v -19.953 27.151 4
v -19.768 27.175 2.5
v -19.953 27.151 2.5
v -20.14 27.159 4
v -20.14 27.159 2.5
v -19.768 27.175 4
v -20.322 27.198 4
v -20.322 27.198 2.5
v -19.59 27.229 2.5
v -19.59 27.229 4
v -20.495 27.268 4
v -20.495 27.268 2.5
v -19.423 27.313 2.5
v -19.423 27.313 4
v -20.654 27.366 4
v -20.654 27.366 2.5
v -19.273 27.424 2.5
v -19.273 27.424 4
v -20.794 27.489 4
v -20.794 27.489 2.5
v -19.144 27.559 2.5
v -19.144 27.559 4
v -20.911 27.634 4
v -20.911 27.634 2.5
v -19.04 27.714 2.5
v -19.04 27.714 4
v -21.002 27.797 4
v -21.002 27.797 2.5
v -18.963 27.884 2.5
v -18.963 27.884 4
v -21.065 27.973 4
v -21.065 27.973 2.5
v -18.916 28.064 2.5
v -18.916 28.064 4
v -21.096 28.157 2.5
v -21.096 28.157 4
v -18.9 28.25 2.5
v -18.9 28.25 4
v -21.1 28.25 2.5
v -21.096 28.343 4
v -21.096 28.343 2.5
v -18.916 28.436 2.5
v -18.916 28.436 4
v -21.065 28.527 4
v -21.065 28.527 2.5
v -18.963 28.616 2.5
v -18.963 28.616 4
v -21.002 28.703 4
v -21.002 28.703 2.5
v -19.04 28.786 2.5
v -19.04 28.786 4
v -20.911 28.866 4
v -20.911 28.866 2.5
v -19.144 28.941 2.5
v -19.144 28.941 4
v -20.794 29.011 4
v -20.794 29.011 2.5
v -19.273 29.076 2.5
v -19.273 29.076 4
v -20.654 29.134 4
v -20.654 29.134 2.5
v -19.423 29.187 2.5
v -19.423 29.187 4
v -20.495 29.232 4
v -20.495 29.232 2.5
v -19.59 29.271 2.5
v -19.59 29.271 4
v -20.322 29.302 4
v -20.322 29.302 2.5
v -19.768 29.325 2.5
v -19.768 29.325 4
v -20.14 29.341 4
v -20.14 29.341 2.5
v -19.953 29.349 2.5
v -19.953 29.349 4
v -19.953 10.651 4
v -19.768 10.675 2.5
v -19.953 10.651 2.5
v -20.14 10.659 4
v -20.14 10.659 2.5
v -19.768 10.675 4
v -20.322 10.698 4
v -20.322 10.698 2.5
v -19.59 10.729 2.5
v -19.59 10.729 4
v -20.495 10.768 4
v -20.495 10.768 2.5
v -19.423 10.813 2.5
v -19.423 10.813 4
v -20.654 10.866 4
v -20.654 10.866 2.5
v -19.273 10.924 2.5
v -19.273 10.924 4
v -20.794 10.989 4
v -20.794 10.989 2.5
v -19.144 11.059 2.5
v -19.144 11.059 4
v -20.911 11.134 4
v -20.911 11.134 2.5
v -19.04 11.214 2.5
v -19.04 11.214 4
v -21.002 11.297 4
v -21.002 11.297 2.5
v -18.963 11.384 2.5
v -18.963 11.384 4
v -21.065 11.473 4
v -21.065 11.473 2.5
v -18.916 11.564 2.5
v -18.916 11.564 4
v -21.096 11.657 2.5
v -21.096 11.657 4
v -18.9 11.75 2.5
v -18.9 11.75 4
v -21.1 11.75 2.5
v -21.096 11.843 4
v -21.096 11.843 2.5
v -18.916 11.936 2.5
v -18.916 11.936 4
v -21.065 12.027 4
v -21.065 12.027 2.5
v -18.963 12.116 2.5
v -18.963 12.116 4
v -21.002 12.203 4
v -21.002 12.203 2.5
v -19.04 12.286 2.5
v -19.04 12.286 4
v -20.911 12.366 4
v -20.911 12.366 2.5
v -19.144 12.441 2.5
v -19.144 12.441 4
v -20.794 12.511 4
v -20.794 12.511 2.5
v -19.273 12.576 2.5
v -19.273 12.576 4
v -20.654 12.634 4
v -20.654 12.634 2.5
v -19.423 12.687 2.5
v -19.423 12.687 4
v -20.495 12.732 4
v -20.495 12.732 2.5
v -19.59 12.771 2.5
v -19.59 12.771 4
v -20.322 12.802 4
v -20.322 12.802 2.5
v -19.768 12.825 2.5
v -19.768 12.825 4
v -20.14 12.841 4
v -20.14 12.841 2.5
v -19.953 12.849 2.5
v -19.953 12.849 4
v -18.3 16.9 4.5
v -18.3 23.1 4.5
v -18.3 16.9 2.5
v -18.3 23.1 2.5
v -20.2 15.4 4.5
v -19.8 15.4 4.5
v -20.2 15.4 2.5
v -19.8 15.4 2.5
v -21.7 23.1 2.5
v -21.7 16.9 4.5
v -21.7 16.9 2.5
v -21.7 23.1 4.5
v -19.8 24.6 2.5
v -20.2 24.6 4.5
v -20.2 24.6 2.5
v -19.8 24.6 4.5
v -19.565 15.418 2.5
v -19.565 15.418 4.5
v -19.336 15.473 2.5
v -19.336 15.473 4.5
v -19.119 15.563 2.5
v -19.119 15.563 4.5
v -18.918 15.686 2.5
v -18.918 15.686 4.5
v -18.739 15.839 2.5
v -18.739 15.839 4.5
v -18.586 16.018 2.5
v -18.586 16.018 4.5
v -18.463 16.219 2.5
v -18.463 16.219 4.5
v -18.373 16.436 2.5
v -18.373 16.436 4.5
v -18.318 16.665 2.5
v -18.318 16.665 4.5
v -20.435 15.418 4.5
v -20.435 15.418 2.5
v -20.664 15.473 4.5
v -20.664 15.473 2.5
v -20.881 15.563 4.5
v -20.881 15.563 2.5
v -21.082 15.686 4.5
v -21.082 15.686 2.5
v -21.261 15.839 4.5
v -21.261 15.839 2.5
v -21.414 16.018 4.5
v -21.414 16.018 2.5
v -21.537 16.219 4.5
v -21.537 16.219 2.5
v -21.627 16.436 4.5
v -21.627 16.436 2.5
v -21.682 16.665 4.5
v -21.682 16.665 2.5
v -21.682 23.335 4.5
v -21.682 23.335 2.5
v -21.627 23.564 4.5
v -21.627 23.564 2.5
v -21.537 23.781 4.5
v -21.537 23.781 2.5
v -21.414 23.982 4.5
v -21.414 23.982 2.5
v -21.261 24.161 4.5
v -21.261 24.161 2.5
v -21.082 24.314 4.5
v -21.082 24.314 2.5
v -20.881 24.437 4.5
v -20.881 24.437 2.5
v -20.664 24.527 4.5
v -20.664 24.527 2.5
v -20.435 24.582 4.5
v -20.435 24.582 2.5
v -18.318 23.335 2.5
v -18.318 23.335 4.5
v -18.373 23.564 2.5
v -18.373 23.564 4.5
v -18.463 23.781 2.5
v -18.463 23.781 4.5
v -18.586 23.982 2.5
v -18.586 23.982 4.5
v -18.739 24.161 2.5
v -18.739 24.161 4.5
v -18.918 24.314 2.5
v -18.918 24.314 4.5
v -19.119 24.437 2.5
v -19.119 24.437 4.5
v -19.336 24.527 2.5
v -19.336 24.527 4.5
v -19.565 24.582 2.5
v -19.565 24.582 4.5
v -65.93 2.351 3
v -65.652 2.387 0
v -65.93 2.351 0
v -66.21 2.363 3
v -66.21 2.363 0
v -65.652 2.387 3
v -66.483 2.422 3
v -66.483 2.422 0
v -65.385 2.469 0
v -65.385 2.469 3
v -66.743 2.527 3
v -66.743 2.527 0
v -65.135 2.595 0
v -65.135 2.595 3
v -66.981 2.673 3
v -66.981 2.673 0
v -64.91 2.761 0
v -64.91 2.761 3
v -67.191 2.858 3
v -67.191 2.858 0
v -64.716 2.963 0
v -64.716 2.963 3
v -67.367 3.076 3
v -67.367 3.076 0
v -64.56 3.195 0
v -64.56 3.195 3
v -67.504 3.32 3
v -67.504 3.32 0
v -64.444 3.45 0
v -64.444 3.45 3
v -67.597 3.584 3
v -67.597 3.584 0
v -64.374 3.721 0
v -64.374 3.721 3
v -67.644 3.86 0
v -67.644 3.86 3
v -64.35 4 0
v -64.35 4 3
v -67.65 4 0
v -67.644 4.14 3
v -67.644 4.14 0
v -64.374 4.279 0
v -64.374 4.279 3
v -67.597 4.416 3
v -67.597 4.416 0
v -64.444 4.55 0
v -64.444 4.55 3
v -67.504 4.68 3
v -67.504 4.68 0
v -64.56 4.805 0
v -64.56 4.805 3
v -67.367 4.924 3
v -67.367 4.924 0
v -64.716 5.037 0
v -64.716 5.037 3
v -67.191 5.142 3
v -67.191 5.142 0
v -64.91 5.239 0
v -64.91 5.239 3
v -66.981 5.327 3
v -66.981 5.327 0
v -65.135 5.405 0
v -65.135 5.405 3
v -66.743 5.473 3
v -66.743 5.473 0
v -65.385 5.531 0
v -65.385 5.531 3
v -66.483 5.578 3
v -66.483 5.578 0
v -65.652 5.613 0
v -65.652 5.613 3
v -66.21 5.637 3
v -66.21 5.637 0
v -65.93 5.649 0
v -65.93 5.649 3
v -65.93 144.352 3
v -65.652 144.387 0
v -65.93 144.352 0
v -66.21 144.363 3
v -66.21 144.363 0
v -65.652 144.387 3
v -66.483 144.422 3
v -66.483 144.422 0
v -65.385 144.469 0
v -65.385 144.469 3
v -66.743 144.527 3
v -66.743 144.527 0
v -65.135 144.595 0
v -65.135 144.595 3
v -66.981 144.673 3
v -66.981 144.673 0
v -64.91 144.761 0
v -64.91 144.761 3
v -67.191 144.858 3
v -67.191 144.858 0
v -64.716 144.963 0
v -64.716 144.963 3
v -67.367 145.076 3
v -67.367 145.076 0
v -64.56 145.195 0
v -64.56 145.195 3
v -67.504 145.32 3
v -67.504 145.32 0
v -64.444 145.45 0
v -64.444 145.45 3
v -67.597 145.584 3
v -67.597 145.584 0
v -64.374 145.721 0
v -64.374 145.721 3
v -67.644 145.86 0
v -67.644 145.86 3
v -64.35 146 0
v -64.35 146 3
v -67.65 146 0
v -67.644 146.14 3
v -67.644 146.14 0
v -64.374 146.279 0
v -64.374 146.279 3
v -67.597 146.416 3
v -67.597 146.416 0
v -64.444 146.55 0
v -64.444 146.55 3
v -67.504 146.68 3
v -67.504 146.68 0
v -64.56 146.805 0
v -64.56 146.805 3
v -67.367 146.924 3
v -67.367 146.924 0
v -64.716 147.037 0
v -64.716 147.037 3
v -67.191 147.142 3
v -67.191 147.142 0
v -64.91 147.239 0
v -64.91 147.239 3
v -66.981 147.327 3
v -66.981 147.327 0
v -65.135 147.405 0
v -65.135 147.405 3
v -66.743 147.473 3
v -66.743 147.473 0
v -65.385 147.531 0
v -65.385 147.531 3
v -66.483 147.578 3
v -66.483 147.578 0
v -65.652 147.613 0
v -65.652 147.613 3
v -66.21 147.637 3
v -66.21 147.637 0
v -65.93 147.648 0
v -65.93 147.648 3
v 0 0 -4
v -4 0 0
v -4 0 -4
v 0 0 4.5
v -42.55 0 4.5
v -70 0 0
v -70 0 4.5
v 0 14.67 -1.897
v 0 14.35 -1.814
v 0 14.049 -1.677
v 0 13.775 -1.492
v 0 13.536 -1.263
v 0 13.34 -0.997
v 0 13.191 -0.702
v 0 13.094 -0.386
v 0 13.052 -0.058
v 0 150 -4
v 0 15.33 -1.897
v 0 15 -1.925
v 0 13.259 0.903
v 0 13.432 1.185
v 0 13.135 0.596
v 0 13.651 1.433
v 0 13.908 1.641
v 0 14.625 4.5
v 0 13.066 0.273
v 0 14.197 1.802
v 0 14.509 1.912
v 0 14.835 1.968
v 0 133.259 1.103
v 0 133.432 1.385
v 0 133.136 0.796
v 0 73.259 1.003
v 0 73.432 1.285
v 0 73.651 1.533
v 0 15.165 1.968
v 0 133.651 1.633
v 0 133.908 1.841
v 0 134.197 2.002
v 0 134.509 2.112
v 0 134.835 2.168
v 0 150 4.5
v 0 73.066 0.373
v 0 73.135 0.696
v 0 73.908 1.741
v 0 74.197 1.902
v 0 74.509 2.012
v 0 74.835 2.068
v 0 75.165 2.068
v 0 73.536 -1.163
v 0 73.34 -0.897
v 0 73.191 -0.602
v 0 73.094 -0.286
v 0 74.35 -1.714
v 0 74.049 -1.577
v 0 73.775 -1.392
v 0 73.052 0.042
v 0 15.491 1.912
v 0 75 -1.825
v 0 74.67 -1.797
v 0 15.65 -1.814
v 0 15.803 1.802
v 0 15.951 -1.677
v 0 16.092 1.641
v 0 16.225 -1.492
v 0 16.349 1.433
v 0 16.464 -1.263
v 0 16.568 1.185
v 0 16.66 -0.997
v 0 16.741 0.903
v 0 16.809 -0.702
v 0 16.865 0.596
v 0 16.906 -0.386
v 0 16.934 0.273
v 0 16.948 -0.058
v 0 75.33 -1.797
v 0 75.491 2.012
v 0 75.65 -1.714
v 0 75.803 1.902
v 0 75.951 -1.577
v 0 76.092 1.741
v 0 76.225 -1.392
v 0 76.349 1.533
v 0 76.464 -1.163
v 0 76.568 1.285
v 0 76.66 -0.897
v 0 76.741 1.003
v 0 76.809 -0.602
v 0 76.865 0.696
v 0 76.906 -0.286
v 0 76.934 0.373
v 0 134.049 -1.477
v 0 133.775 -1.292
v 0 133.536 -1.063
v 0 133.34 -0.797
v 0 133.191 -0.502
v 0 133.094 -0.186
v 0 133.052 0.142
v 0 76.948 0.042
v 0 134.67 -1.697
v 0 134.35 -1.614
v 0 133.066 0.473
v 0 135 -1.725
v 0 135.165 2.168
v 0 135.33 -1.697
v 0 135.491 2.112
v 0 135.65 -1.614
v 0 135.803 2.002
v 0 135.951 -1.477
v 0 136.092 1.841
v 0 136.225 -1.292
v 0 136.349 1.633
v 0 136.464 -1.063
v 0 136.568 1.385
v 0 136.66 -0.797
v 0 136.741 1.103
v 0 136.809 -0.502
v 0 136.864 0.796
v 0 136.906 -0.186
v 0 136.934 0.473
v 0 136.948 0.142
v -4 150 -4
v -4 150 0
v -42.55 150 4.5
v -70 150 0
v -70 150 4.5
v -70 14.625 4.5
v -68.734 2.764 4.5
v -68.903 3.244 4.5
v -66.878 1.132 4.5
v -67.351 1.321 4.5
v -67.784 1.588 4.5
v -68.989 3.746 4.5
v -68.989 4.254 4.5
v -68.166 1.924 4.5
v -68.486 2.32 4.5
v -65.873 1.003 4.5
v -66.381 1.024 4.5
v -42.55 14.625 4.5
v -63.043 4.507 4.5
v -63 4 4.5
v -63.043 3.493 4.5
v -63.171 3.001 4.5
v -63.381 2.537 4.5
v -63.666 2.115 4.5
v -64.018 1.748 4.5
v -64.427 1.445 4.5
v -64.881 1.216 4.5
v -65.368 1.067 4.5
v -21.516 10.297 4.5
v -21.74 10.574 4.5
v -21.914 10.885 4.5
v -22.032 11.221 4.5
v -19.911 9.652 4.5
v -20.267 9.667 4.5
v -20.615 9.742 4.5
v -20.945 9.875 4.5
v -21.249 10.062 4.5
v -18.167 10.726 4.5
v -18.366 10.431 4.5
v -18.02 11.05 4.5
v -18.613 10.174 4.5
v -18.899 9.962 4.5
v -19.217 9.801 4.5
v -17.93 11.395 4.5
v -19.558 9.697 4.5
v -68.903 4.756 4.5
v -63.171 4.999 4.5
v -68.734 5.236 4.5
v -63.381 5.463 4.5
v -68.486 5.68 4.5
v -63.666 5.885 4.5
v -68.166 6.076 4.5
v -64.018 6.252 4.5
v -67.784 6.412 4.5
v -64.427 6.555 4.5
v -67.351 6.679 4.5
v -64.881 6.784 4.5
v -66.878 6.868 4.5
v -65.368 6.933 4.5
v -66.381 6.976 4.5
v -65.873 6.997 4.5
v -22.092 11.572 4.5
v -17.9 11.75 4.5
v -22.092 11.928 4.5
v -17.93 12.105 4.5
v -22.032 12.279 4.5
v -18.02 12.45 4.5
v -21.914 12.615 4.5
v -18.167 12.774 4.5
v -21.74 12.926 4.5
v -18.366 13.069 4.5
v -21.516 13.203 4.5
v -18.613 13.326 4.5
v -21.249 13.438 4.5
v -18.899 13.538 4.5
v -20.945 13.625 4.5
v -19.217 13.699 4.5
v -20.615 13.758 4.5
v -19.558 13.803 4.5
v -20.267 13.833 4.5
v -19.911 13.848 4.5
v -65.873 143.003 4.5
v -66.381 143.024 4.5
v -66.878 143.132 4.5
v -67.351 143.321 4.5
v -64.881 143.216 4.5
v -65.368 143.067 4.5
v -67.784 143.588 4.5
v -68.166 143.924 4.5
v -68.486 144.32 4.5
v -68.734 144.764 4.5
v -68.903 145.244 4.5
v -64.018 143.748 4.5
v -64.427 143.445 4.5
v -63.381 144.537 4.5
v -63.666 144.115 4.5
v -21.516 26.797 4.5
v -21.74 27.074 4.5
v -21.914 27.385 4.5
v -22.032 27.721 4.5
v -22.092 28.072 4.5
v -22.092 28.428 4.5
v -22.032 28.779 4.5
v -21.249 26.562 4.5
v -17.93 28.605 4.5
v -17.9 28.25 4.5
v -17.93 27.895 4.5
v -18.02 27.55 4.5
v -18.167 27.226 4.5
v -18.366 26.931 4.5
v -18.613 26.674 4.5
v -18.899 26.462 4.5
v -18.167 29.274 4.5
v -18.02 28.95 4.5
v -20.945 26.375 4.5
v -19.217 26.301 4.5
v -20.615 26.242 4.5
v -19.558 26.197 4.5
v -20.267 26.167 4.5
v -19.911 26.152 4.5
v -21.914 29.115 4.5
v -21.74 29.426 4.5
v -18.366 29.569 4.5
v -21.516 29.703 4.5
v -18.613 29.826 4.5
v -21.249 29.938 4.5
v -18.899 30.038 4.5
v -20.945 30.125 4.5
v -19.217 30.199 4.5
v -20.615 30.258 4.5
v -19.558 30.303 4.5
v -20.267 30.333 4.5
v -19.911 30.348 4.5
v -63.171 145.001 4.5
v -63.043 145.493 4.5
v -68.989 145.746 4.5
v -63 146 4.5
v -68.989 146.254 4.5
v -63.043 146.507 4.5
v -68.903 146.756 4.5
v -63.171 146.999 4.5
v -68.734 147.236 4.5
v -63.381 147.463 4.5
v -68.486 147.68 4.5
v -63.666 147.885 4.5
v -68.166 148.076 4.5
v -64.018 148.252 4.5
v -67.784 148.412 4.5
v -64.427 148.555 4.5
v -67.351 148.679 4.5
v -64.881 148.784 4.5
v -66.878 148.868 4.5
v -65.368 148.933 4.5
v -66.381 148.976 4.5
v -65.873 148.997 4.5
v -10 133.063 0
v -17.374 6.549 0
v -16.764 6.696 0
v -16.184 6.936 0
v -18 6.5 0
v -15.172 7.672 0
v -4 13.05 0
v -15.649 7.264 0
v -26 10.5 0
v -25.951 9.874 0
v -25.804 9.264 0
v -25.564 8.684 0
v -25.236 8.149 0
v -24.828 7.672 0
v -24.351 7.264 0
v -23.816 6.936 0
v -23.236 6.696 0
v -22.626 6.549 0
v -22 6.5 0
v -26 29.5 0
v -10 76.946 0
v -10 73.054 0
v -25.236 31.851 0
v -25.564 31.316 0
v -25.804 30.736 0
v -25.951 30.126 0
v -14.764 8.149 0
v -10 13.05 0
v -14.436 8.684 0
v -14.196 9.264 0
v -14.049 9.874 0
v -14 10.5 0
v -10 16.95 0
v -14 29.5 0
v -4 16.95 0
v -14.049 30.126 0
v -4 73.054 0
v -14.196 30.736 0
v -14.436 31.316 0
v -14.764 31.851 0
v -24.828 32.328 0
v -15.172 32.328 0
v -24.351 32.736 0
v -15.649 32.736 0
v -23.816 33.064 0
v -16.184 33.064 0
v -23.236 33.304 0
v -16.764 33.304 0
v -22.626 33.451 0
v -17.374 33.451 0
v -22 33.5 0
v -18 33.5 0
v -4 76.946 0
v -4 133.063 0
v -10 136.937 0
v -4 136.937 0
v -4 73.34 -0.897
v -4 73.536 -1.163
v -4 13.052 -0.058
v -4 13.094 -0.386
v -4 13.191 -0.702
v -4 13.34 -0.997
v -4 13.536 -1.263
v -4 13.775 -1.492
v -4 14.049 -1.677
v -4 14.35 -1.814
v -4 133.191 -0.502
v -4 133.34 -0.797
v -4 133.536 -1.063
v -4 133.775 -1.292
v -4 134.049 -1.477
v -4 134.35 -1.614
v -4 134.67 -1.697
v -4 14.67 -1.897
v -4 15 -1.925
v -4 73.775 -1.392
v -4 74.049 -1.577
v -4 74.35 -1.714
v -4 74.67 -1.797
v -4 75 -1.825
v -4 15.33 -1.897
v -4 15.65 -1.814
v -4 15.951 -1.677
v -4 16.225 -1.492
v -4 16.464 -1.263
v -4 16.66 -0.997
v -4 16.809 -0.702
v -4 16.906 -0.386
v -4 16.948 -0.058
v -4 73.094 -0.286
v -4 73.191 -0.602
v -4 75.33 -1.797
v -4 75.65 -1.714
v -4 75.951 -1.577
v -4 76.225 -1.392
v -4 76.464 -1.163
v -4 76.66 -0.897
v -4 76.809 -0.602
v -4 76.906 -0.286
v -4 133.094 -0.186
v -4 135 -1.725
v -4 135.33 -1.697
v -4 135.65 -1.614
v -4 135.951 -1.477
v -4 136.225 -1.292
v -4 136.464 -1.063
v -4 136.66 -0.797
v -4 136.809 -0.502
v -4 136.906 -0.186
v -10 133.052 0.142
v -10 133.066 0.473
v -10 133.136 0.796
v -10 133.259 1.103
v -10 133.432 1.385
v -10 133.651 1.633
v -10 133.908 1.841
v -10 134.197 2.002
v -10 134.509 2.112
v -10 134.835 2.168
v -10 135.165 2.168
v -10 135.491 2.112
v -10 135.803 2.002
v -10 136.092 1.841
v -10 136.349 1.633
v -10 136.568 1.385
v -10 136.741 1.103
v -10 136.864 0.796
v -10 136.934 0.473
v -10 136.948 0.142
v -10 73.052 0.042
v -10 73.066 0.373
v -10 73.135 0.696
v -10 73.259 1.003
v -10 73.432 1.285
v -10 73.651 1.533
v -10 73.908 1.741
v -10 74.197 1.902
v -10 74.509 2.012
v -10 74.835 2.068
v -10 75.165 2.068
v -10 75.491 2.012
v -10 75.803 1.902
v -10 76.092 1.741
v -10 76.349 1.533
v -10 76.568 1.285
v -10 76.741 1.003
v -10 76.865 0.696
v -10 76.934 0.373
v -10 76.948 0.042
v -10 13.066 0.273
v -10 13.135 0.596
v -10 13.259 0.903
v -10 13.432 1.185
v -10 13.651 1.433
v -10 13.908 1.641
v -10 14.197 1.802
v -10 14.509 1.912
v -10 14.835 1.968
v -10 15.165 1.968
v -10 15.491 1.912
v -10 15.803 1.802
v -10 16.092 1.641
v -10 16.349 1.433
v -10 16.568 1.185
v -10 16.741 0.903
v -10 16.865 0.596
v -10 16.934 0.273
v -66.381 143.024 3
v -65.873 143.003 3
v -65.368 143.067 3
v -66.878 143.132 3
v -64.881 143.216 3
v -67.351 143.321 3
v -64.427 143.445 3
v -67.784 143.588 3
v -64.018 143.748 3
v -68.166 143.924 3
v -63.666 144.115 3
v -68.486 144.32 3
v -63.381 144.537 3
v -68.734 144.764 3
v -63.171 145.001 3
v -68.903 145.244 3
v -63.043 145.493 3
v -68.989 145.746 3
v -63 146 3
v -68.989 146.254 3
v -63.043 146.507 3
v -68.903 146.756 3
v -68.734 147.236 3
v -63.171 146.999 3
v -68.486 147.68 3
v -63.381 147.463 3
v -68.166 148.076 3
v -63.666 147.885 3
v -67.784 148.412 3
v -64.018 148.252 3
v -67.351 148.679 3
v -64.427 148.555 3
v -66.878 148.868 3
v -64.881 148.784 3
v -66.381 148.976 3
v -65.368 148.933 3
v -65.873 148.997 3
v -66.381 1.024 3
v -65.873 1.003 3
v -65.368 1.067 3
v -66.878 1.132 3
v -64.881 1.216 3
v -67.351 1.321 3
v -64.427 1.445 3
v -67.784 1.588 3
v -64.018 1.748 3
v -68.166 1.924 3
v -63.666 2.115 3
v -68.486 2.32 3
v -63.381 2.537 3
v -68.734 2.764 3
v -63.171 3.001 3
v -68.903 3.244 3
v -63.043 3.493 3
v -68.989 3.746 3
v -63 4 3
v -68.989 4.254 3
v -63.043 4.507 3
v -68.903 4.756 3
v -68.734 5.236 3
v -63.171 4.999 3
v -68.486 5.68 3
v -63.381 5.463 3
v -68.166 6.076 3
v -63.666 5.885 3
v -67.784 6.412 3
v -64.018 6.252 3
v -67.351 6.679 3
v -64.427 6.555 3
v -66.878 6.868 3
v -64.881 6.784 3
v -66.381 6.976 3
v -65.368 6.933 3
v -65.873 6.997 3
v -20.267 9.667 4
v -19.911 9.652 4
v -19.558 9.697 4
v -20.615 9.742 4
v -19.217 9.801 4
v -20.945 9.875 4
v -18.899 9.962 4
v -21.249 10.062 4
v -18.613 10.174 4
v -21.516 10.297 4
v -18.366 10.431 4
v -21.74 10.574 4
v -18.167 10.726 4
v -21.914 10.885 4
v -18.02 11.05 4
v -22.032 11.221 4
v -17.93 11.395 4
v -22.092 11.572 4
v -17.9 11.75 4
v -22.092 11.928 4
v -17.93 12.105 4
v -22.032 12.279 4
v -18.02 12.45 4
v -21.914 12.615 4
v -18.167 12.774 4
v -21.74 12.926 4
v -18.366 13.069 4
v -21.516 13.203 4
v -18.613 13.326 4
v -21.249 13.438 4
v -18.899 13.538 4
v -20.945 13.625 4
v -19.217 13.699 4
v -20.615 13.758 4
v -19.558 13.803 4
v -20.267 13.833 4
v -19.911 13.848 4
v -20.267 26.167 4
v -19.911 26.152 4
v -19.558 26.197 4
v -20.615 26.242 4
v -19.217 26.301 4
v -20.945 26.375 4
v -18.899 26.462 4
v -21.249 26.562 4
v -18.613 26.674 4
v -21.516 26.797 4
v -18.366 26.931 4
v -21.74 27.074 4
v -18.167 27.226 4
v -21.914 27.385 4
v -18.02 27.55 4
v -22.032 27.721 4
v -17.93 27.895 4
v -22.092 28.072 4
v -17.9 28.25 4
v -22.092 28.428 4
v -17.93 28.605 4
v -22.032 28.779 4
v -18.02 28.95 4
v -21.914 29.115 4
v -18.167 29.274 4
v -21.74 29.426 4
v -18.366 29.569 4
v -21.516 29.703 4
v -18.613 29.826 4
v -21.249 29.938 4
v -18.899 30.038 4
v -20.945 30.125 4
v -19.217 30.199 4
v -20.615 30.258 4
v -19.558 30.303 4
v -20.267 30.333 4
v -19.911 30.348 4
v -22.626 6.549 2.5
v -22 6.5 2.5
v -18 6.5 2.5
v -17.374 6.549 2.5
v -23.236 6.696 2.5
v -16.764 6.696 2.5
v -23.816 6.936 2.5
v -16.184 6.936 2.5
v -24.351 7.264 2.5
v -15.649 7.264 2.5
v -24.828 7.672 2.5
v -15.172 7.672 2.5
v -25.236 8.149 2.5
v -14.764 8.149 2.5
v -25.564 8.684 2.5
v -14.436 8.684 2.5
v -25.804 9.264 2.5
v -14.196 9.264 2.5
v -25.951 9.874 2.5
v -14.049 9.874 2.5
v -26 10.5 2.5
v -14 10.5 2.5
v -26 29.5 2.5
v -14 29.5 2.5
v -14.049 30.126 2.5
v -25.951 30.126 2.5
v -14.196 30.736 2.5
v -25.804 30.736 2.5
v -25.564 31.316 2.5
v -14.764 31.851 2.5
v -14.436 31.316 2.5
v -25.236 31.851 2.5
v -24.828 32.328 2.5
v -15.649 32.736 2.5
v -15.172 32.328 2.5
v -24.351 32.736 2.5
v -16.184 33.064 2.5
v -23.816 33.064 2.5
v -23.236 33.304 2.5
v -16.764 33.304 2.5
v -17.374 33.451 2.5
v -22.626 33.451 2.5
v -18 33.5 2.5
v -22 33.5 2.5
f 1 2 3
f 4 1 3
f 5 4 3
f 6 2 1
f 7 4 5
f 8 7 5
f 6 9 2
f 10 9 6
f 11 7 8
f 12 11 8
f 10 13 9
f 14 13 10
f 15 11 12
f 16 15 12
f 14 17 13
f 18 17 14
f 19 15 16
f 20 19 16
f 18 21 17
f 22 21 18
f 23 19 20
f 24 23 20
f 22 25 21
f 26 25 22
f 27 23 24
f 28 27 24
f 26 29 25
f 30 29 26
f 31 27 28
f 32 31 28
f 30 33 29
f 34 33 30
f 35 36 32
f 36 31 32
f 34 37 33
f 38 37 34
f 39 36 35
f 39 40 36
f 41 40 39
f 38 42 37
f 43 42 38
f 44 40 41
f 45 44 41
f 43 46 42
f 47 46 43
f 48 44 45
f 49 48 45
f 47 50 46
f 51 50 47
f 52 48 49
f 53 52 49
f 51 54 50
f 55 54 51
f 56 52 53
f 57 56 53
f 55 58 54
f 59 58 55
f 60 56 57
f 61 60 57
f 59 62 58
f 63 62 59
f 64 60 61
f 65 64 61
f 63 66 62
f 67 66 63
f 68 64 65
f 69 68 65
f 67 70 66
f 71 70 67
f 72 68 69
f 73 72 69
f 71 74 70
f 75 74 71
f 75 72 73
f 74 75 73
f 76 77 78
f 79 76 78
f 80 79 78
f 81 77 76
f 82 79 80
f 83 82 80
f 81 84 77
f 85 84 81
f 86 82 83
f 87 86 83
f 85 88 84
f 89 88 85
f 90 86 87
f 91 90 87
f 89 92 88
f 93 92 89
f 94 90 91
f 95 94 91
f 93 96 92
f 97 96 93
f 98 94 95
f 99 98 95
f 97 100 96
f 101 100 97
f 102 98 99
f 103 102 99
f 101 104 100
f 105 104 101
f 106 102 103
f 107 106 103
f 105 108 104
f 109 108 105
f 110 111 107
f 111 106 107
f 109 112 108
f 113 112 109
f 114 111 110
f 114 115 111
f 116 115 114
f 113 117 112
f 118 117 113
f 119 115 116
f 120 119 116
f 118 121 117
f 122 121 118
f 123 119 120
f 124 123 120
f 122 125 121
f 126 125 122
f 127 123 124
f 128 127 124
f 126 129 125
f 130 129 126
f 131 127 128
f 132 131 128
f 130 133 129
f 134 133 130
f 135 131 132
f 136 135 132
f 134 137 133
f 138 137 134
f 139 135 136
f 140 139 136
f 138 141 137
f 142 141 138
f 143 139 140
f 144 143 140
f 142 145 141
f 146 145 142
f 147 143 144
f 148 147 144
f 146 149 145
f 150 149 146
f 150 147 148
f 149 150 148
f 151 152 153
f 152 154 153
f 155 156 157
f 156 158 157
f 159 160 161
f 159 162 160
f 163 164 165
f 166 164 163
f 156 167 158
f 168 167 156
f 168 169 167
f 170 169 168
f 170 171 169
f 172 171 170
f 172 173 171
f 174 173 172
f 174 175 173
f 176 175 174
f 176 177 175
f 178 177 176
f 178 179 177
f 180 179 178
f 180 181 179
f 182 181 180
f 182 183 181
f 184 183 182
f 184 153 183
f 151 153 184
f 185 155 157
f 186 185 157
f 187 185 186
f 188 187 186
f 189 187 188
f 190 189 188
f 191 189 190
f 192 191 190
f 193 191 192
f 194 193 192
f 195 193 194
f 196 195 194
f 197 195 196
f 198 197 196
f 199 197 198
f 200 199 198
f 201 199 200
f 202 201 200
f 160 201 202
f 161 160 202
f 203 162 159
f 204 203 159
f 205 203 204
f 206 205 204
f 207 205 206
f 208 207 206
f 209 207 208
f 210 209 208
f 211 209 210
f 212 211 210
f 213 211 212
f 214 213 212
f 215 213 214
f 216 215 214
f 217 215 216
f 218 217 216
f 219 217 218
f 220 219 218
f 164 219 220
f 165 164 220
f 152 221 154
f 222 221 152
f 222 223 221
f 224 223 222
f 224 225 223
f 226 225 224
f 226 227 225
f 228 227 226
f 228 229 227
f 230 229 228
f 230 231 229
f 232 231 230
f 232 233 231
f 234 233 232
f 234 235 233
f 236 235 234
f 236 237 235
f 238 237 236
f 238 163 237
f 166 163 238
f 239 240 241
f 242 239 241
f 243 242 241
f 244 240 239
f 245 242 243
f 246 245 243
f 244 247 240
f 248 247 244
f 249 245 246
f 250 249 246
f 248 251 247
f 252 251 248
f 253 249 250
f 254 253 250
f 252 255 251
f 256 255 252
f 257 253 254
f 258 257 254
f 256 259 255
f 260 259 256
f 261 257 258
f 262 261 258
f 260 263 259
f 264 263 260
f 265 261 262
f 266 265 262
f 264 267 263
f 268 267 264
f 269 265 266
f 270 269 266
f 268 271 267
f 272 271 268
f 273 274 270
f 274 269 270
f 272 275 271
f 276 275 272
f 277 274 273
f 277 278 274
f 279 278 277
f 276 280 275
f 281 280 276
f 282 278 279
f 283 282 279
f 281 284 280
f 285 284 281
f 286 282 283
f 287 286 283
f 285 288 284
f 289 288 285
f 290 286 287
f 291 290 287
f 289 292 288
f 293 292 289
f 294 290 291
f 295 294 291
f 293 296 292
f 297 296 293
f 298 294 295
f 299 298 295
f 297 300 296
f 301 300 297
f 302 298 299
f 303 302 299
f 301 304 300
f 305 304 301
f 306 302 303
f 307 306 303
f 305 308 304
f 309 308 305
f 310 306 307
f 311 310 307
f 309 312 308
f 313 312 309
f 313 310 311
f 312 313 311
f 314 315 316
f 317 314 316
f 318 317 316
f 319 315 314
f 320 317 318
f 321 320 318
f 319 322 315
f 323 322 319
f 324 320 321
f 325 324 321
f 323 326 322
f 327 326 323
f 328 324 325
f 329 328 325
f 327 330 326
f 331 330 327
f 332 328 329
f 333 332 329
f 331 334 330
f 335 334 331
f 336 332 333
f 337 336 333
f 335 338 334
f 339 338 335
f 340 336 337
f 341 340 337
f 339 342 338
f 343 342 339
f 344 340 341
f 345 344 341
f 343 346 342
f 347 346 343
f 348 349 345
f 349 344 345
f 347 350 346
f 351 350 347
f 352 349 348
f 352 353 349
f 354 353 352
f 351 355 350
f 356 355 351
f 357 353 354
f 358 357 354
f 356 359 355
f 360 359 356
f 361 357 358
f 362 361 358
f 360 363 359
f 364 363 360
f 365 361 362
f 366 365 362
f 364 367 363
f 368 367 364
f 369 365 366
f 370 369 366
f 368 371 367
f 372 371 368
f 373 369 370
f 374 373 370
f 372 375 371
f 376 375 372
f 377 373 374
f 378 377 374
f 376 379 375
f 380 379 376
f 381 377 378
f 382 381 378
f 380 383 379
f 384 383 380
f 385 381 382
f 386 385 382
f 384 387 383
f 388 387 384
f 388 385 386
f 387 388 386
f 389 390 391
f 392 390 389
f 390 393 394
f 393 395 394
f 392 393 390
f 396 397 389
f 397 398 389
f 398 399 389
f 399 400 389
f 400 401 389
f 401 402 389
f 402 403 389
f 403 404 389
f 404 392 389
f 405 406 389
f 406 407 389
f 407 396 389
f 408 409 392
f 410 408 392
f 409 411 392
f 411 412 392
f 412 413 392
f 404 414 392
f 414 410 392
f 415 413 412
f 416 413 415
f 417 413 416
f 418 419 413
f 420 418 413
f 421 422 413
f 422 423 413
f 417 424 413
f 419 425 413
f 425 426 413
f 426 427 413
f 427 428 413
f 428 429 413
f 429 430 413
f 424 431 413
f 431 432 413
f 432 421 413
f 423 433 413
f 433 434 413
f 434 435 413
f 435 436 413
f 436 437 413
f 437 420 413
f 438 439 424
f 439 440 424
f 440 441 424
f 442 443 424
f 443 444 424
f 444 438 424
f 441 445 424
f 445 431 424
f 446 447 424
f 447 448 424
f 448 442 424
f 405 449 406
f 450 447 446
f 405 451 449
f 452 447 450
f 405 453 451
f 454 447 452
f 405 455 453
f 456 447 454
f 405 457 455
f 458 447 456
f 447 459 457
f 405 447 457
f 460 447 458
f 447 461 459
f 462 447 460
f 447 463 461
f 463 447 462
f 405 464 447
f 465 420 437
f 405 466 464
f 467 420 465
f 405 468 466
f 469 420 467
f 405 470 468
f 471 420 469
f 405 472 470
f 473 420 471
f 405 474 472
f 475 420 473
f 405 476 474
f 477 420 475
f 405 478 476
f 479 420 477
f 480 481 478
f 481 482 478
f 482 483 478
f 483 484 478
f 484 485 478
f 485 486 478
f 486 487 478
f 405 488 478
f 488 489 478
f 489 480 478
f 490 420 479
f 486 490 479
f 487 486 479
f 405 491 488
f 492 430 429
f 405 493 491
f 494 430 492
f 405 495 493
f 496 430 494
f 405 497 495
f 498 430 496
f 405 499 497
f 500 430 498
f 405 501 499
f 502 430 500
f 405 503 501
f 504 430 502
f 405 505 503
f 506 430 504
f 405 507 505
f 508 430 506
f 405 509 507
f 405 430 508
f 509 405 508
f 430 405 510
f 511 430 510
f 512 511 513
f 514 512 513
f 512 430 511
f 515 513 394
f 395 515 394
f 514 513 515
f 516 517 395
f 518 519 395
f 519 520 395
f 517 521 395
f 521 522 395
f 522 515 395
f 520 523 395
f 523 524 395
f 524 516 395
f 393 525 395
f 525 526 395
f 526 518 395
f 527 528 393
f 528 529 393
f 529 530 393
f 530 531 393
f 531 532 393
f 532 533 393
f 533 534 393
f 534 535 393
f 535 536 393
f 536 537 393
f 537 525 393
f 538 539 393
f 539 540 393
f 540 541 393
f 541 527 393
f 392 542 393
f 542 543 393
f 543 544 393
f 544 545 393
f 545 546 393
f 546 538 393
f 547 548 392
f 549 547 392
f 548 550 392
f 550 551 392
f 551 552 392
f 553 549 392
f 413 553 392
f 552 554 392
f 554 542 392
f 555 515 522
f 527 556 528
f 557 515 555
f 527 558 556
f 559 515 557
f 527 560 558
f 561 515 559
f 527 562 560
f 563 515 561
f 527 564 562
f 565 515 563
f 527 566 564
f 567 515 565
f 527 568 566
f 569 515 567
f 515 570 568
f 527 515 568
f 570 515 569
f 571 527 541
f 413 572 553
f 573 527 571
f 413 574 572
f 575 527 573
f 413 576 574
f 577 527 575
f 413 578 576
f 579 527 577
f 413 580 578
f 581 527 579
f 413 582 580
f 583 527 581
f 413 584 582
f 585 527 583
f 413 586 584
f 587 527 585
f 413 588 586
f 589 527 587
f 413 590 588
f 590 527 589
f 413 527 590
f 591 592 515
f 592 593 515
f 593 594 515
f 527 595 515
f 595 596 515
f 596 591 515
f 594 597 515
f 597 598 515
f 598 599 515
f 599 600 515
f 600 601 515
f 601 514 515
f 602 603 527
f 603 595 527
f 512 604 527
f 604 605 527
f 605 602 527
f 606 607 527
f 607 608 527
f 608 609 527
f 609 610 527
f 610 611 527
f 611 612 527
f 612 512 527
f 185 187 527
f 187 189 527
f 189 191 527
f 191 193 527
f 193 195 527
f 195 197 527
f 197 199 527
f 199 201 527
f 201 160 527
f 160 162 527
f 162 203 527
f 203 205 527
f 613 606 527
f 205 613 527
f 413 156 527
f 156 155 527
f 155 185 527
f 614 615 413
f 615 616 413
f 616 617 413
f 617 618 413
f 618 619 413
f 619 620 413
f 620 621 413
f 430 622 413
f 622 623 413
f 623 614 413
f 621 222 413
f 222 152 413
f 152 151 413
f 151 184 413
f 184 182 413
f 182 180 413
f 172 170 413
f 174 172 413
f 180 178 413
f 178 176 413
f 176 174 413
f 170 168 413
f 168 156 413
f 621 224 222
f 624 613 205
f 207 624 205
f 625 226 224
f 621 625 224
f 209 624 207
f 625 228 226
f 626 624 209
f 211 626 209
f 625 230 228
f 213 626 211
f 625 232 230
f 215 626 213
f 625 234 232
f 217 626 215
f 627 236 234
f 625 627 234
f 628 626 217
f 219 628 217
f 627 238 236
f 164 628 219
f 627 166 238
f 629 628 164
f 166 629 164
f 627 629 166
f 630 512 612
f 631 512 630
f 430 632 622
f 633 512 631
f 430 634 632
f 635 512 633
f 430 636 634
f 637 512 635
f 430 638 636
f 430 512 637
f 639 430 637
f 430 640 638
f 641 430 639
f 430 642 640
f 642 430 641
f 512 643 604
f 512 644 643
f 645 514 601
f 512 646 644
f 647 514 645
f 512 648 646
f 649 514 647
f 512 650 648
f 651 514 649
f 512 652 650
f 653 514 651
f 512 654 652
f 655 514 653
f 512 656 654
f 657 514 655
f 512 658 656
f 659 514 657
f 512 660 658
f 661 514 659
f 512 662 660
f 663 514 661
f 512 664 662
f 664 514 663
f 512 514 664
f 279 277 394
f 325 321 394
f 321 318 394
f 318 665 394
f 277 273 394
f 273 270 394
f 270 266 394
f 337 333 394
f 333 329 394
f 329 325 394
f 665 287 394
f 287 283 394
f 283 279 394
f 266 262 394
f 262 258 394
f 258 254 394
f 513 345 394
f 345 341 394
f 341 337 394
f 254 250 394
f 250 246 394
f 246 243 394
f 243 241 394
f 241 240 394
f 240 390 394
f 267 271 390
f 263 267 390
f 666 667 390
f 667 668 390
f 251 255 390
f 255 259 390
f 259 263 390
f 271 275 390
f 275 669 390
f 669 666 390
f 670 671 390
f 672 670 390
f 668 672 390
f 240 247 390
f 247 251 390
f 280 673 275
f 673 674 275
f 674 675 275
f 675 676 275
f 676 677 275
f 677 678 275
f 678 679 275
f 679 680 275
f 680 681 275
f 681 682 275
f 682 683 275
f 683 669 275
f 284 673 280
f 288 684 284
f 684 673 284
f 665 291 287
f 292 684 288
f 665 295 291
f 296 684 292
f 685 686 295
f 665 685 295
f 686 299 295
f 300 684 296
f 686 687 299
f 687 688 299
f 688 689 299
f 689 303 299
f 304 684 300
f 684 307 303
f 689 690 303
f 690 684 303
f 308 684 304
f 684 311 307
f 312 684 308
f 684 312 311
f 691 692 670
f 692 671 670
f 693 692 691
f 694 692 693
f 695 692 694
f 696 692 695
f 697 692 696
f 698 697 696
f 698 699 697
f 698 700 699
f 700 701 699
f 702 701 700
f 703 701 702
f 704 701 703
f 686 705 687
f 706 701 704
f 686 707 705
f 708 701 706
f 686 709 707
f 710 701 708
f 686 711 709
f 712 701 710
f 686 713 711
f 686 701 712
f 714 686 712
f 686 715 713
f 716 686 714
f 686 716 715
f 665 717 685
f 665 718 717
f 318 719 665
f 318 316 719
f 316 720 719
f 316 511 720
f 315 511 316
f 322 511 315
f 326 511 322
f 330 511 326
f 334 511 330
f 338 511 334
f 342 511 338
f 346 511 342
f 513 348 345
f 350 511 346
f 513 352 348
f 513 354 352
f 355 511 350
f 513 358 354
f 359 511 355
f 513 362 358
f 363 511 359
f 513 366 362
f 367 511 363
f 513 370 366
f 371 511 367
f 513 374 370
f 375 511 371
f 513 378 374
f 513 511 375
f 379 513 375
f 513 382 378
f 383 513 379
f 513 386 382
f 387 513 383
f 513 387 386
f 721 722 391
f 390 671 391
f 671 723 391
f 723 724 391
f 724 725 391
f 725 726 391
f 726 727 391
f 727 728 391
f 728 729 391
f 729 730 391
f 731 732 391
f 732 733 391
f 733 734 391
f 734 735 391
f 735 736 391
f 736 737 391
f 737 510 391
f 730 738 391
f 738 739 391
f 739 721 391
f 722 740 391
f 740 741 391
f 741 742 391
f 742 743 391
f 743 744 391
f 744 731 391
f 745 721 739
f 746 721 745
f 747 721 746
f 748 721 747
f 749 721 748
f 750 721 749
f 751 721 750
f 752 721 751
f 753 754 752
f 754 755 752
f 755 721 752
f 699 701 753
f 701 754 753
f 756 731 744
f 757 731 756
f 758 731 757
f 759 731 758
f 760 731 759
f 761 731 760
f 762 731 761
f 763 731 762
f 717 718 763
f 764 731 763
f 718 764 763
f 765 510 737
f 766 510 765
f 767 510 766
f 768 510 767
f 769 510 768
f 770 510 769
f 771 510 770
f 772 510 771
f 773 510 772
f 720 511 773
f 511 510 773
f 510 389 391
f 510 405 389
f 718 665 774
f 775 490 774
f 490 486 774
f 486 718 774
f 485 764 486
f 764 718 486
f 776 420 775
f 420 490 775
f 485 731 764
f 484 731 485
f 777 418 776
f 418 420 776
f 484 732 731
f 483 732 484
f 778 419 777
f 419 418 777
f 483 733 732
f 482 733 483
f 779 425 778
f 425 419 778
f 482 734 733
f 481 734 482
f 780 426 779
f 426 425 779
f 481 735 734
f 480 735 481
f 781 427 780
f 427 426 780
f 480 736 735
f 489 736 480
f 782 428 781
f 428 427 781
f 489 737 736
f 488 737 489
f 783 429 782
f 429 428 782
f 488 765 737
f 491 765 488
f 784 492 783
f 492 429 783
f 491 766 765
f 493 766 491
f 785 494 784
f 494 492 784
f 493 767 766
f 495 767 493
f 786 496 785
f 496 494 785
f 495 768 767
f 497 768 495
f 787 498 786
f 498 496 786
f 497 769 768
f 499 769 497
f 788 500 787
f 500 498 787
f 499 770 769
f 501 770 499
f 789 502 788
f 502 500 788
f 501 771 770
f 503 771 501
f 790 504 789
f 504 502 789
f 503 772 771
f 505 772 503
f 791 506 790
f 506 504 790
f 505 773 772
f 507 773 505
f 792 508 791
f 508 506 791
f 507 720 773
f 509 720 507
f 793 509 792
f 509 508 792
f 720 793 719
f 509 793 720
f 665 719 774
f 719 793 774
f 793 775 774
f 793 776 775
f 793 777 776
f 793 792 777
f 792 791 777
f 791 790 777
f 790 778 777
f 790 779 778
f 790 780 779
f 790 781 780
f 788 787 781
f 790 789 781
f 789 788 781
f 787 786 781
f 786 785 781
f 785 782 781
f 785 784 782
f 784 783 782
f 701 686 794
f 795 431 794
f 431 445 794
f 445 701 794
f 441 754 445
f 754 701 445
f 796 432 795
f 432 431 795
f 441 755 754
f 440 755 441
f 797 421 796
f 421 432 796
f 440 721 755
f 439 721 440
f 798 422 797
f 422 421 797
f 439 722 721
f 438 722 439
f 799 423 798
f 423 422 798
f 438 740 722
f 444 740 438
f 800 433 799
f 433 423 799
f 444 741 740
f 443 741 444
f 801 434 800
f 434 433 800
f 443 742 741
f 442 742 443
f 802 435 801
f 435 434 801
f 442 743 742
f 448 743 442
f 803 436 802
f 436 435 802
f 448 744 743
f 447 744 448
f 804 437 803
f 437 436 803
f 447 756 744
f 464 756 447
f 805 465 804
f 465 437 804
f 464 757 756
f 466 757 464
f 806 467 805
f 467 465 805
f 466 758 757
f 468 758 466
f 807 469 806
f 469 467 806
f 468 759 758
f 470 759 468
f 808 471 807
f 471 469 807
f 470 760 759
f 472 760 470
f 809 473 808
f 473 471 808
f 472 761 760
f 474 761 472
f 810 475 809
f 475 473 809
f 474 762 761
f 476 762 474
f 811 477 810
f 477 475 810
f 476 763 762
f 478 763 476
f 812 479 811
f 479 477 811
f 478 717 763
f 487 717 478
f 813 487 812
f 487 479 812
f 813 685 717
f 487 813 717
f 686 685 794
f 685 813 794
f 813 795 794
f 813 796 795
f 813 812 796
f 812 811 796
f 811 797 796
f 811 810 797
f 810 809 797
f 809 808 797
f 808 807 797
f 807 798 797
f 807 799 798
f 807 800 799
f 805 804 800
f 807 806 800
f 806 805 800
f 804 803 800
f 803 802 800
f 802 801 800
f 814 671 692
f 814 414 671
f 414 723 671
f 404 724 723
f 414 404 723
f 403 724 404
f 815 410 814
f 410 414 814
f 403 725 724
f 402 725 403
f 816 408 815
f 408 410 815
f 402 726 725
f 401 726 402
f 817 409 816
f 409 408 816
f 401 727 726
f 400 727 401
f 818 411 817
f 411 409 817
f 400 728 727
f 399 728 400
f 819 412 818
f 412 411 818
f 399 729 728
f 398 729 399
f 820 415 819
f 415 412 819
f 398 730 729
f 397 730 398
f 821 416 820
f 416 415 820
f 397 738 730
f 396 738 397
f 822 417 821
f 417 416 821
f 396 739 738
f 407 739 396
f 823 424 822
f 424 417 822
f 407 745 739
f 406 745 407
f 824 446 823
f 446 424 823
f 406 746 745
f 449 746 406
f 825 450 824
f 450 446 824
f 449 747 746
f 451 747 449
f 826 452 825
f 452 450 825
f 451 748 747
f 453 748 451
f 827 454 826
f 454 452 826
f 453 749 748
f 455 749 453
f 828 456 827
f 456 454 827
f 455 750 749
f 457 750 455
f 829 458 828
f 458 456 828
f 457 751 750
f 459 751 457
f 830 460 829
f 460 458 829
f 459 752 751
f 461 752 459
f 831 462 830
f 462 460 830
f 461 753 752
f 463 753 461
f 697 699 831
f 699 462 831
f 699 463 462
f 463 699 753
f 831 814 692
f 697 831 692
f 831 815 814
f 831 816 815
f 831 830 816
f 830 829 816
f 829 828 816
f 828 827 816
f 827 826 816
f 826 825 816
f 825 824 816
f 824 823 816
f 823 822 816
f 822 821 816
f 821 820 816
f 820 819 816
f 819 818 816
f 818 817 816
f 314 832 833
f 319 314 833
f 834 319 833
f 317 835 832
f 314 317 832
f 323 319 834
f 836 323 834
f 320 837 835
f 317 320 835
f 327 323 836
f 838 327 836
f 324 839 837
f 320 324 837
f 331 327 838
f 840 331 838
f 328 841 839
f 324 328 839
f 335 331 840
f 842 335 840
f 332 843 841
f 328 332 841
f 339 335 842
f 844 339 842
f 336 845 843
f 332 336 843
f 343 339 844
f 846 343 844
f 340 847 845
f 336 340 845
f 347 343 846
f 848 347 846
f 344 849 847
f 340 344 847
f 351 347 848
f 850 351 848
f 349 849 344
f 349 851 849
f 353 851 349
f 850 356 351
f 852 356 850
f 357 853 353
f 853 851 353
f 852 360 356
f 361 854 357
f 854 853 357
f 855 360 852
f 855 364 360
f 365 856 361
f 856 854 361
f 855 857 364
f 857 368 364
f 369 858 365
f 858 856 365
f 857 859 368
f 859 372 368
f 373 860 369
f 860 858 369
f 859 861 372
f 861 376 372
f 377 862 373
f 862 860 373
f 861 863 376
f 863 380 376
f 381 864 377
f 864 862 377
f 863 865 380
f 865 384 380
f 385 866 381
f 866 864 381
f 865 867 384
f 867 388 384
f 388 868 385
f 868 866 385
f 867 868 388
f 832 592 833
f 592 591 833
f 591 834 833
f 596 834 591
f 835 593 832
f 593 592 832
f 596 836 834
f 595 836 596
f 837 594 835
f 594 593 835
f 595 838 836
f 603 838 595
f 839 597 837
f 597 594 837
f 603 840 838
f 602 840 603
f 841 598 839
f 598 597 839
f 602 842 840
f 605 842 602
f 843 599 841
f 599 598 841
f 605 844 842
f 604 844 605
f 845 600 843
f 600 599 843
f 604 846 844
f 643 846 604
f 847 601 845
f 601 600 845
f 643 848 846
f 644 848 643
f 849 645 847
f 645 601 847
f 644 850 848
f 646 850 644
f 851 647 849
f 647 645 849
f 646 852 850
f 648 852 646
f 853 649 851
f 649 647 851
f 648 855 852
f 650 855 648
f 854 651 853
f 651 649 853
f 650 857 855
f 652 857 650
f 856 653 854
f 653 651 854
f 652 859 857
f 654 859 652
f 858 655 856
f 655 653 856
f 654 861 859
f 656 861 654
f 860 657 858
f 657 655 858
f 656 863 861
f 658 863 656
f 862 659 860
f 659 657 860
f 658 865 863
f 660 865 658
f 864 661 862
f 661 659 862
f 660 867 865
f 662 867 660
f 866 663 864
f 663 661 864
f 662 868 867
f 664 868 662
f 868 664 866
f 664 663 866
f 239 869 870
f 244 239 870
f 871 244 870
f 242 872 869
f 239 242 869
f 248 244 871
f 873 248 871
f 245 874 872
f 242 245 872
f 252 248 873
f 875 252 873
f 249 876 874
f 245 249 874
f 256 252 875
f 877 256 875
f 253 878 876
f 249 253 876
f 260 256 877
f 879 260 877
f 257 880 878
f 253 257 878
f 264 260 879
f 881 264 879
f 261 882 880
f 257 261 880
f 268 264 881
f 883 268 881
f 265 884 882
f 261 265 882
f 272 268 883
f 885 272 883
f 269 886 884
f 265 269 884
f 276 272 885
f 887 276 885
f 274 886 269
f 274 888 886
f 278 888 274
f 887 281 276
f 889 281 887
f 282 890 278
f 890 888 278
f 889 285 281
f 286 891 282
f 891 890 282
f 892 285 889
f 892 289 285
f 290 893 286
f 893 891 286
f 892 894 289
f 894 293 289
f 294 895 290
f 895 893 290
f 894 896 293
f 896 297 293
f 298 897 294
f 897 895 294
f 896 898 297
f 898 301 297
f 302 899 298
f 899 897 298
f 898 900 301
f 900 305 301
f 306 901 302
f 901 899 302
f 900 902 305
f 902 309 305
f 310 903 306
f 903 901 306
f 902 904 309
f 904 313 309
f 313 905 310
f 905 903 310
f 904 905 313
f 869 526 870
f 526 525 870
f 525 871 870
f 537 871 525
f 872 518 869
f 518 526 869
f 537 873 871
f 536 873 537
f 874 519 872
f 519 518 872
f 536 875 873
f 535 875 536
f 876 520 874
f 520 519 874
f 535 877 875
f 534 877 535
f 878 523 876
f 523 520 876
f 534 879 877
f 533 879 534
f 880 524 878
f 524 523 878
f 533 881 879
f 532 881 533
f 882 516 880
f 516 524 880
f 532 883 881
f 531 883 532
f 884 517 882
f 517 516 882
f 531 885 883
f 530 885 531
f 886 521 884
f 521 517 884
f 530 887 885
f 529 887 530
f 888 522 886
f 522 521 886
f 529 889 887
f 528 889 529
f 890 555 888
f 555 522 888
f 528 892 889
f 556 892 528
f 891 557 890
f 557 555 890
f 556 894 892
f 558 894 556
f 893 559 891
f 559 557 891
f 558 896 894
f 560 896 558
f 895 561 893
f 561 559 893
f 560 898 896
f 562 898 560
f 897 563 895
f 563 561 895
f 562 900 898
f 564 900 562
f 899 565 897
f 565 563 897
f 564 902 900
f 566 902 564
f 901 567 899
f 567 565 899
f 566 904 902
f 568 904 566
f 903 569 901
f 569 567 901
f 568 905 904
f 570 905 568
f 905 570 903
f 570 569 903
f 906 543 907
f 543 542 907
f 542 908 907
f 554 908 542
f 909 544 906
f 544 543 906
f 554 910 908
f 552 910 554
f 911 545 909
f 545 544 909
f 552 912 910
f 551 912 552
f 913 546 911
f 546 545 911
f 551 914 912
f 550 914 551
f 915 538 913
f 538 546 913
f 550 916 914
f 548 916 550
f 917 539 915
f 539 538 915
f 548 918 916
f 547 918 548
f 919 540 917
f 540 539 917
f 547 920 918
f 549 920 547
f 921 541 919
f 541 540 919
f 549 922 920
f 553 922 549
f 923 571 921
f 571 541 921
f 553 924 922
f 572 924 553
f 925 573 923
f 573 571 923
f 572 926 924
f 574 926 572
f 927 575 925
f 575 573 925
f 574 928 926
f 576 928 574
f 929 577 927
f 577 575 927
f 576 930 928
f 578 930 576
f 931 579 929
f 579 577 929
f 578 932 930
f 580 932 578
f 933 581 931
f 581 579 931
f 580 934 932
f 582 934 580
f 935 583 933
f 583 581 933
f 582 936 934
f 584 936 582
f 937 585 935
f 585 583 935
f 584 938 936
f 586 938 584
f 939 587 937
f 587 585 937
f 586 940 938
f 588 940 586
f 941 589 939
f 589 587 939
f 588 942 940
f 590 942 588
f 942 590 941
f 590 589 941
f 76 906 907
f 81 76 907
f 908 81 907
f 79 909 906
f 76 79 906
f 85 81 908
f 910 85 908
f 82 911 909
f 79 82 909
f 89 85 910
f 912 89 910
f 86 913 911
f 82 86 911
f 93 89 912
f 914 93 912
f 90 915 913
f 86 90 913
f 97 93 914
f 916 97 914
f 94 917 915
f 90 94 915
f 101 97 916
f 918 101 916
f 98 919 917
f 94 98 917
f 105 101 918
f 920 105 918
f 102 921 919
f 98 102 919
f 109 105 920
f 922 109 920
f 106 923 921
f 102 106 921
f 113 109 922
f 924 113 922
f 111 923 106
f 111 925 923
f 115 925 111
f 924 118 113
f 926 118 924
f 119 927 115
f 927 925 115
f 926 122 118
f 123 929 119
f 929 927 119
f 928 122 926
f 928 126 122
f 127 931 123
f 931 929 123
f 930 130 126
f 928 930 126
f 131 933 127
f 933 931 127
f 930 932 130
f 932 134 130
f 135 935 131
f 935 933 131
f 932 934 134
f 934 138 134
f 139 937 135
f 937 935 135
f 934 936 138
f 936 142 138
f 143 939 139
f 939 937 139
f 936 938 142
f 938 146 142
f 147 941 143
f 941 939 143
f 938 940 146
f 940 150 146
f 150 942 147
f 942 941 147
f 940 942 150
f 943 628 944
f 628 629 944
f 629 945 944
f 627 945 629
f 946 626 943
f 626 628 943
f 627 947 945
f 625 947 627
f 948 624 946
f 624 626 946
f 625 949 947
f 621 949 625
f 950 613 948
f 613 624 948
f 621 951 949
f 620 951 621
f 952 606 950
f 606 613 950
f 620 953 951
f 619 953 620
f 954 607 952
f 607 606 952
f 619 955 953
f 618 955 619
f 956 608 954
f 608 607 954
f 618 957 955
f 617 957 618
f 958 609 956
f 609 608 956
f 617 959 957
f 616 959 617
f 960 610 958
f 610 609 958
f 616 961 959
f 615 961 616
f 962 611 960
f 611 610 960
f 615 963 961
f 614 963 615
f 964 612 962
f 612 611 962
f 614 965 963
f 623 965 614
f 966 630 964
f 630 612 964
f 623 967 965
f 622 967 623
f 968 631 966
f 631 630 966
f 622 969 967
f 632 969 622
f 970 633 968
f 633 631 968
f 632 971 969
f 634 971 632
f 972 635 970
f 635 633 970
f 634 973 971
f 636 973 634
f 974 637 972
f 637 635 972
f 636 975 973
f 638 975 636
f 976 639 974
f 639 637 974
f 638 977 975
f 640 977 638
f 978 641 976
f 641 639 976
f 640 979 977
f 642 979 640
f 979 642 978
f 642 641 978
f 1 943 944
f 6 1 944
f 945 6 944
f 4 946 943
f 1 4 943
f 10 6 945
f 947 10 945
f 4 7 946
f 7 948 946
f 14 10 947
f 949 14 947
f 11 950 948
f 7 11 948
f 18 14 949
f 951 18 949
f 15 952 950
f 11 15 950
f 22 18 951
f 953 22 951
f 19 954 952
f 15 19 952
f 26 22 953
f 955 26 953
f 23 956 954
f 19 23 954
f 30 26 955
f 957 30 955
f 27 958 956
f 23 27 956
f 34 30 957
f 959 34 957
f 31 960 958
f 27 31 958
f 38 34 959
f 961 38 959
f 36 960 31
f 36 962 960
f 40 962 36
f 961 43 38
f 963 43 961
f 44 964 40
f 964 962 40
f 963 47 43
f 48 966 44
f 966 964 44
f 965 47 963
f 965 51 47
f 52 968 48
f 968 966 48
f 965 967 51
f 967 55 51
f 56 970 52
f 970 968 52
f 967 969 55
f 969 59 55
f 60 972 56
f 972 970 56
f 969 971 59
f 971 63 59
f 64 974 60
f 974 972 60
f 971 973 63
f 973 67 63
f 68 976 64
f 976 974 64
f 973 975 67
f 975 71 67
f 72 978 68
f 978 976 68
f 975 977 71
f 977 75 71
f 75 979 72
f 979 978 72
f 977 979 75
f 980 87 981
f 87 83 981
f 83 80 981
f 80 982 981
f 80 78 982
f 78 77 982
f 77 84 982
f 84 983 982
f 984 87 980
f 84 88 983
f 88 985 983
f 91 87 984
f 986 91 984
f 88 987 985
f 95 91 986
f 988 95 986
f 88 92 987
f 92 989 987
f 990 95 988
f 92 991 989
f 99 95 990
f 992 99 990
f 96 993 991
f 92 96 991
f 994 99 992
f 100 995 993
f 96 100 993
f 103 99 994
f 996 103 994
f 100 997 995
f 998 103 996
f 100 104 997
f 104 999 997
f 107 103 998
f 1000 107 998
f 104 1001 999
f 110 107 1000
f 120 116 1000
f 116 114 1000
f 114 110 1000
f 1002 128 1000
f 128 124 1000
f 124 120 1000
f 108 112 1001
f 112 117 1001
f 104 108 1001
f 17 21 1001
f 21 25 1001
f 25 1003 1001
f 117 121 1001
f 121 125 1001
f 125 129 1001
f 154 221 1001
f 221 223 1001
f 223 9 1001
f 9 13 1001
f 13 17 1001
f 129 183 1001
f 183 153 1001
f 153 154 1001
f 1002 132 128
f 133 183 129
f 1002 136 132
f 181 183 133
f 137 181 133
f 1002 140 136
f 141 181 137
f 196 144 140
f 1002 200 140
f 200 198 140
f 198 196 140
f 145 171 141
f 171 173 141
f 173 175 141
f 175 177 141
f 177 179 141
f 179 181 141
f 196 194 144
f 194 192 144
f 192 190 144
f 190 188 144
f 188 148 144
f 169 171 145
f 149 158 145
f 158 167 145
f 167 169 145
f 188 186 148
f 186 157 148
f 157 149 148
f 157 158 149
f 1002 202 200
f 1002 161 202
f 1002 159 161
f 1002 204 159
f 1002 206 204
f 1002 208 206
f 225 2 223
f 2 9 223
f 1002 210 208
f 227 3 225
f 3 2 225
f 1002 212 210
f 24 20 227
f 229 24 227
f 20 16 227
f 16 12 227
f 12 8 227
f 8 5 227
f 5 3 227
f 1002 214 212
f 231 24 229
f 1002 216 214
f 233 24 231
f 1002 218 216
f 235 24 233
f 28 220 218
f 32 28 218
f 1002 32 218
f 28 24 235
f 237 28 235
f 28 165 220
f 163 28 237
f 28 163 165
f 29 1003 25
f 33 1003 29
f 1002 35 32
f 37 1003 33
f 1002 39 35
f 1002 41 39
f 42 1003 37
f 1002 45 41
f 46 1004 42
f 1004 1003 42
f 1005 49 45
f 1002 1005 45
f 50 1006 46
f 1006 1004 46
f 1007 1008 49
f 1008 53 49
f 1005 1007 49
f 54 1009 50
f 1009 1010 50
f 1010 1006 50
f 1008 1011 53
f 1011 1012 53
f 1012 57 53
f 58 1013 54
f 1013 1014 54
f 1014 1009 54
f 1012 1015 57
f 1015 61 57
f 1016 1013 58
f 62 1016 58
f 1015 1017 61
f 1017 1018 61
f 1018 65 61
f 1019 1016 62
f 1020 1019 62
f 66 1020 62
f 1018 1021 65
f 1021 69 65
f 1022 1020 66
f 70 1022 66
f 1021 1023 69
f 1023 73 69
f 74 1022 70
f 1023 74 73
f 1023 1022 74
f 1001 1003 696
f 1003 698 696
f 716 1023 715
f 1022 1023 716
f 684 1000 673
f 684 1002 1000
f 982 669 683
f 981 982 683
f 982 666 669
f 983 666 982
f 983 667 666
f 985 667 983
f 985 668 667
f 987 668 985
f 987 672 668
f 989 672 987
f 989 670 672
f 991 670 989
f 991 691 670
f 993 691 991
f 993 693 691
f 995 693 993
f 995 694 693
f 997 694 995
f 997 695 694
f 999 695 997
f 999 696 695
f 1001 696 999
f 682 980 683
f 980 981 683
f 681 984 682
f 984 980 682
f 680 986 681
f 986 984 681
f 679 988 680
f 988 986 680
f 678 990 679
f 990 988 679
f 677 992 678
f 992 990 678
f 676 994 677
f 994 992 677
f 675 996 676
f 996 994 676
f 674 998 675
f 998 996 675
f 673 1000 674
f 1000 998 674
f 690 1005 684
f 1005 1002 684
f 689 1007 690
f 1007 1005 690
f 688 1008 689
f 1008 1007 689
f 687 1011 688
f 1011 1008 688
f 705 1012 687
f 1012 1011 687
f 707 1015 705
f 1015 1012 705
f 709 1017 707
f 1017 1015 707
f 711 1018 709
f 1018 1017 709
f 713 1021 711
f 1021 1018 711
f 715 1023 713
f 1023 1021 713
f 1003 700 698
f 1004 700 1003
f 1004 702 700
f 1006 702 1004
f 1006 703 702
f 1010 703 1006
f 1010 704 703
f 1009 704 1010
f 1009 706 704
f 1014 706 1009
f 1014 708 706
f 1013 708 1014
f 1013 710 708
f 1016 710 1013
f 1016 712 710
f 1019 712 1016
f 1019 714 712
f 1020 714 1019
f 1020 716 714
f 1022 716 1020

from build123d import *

# Parameters (mm, degrees)
SKETCH1_W           = 150
SKETCH1_H           = 70
BOSS_EXTRUDE1_DEPTH = 4.5
SKETCH7_W           = 4
SKETCH7_H           = 150
BOSS_EXTRUDE2_DEPTH = 4
SKETCH8_R           = 1.95
CUT_EXTRUDE5_DEPTH  = 10
SKETCH9_R           = 1.65
CUT_EXTRUDE6_DEPTH  = 166.747549001
SKETCH10_R          = 3
CUT_EXTRUDE7_DEPTH  = 1.5
SKETCH13_R          = 2.1
CUT_EXTRUDE10_DEPTH = 0.5
SKETCH14_R          = 1.1
SKETCH14_W          = 3.4
SKETCH14_H          = 9.2
CUT_EXTRUDE11_DEPTH = 166.747549001
FILLET3_R           = 1.5
SKETCH15_W          = 12
SKETCH15_H          = 27
CUT_EXTRUDE12_DEPTH = 2.5
FILLET4_R           = 4


with BuildPart() as part:
    # Sketch1 → Boss-Extrude1 (new body)
    with BuildSketch(Plane(origin=(0, 0, 0), x_dir=(0, 1, 0), z_dir=(0, 0, 1))):
        with Locations((75, 35)):
            Rectangle(SKETCH1_W, SKETCH1_H)
    extrude(amount=BOSS_EXTRUDE1_DEPTH)

    # Sketch7 → Boss-Extrude2 (add)
    with BuildSketch(Plane(origin=(0, 0, 0), x_dir=(1, 0, 0), z_dir=(0, 0, -1))):
        with Locations((-2, -75)):
            Rectangle(SKETCH7_W, SKETCH7_H)
    extrude(amount=BOSS_EXTRUDE2_DEPTH)

    # Sketch8 → Cut-Extrude5 (cut)
    with BuildSketch(Plane.YZ):
        with Locations(Location((15, 0.025, 0), (0, 0, 270))):
            Circle(SKETCH8_R)
        with Locations(Location((75, 0.125, 0), (0, 0, 270))):
            Circle(SKETCH8_R)
        with Locations(Location((135, 0.225, 0), (0, 0, 270))):
            Circle(SKETCH8_R)
    extrude(amount=-CUT_EXTRUDE5_DEPTH, mode=Mode.SUBTRACT)

    # Sketch9 → Cut-Extrude6 (cut, through all)
    with BuildSketch(Plane.XY.offset(4.5)):
        with Locations((-66, 146)):
            Circle(SKETCH9_R)
        with Locations((-66, 4)):
            Circle(SKETCH9_R)
    extrude(amount=-CUT_EXTRUDE6_DEPTH, mode=Mode.SUBTRACT)

    # Sketch10 → Cut-Extrude7 (cut)
    with BuildSketch(Plane.XY.offset(4.5)):
        with Locations((-66, 146)):
            Circle(SKETCH10_R)
        with Locations((-66, 4)):
            Circle(SKETCH10_R)
    extrude(amount=-CUT_EXTRUDE7_DEPTH, mode=Mode.SUBTRACT)

    # Sketch13 → Cut-Extrude10 (cut)
    with BuildSketch(Plane.XY.offset(4.5)):
        with Locations((-20, 28.25)):
            Circle(SKETCH13_R)
        with Locations((-20, 11.75)):
            Circle(SKETCH13_R)
    extrude(amount=-CUT_EXTRUDE10_DEPTH, mode=Mode.SUBTRACT)

    # Sketch14 → Cut-Extrude11 (cut, through all)
    with BuildSketch(Plane.XY.offset(4.5)):
        with Locations((-20, 11.75)):
            Circle(SKETCH14_R)
        with Locations((-20, 28.25)):
            Circle(SKETCH14_R)
        with Locations((-20, 20)):
            Rectangle(SKETCH14_W, SKETCH14_H)
    extrude(amount=-CUT_EXTRUDE11_DEPTH, mode=Mode.SUBTRACT)

    # Fillet3
    fillet3_edges = [part.edges().sort_by_distance(p)[0] for p in [
        (-18.3, 24.6, 2.25),
        (-18.3, 15.4, 2.25),
        (-21.7, 15.4, 2.25),
        (-21.7, 24.6, 2.25),
    ]]
    fillet(fillet3_edges, radius=FILLET3_R)

    # Sketch15 → Cut-Extrude12 (cut)
    with BuildSketch(Plane(origin=(0, 0, 0), x_dir=(1, 0, 0), z_dir=(0, 0, -1))):
        with Locations((-20, -20)):
            Rectangle(SKETCH15_W, SKETCH15_H)
    extrude(amount=-CUT_EXTRUDE12_DEPTH, mode=Mode.SUBTRACT)

    # Fillet4
    fillet4_edges = [part.edges().sort_by_distance(p)[0] for p in [
        (-14, 6.5, 1.25),
        (-14, 33.5, 1.25),
        (-26, 33.5, 1.25),
        (-26, 6.5, 1.25),
    ]]
    fillet(fillet4_edges, radius=FILLET4_R)


solid = part.part
